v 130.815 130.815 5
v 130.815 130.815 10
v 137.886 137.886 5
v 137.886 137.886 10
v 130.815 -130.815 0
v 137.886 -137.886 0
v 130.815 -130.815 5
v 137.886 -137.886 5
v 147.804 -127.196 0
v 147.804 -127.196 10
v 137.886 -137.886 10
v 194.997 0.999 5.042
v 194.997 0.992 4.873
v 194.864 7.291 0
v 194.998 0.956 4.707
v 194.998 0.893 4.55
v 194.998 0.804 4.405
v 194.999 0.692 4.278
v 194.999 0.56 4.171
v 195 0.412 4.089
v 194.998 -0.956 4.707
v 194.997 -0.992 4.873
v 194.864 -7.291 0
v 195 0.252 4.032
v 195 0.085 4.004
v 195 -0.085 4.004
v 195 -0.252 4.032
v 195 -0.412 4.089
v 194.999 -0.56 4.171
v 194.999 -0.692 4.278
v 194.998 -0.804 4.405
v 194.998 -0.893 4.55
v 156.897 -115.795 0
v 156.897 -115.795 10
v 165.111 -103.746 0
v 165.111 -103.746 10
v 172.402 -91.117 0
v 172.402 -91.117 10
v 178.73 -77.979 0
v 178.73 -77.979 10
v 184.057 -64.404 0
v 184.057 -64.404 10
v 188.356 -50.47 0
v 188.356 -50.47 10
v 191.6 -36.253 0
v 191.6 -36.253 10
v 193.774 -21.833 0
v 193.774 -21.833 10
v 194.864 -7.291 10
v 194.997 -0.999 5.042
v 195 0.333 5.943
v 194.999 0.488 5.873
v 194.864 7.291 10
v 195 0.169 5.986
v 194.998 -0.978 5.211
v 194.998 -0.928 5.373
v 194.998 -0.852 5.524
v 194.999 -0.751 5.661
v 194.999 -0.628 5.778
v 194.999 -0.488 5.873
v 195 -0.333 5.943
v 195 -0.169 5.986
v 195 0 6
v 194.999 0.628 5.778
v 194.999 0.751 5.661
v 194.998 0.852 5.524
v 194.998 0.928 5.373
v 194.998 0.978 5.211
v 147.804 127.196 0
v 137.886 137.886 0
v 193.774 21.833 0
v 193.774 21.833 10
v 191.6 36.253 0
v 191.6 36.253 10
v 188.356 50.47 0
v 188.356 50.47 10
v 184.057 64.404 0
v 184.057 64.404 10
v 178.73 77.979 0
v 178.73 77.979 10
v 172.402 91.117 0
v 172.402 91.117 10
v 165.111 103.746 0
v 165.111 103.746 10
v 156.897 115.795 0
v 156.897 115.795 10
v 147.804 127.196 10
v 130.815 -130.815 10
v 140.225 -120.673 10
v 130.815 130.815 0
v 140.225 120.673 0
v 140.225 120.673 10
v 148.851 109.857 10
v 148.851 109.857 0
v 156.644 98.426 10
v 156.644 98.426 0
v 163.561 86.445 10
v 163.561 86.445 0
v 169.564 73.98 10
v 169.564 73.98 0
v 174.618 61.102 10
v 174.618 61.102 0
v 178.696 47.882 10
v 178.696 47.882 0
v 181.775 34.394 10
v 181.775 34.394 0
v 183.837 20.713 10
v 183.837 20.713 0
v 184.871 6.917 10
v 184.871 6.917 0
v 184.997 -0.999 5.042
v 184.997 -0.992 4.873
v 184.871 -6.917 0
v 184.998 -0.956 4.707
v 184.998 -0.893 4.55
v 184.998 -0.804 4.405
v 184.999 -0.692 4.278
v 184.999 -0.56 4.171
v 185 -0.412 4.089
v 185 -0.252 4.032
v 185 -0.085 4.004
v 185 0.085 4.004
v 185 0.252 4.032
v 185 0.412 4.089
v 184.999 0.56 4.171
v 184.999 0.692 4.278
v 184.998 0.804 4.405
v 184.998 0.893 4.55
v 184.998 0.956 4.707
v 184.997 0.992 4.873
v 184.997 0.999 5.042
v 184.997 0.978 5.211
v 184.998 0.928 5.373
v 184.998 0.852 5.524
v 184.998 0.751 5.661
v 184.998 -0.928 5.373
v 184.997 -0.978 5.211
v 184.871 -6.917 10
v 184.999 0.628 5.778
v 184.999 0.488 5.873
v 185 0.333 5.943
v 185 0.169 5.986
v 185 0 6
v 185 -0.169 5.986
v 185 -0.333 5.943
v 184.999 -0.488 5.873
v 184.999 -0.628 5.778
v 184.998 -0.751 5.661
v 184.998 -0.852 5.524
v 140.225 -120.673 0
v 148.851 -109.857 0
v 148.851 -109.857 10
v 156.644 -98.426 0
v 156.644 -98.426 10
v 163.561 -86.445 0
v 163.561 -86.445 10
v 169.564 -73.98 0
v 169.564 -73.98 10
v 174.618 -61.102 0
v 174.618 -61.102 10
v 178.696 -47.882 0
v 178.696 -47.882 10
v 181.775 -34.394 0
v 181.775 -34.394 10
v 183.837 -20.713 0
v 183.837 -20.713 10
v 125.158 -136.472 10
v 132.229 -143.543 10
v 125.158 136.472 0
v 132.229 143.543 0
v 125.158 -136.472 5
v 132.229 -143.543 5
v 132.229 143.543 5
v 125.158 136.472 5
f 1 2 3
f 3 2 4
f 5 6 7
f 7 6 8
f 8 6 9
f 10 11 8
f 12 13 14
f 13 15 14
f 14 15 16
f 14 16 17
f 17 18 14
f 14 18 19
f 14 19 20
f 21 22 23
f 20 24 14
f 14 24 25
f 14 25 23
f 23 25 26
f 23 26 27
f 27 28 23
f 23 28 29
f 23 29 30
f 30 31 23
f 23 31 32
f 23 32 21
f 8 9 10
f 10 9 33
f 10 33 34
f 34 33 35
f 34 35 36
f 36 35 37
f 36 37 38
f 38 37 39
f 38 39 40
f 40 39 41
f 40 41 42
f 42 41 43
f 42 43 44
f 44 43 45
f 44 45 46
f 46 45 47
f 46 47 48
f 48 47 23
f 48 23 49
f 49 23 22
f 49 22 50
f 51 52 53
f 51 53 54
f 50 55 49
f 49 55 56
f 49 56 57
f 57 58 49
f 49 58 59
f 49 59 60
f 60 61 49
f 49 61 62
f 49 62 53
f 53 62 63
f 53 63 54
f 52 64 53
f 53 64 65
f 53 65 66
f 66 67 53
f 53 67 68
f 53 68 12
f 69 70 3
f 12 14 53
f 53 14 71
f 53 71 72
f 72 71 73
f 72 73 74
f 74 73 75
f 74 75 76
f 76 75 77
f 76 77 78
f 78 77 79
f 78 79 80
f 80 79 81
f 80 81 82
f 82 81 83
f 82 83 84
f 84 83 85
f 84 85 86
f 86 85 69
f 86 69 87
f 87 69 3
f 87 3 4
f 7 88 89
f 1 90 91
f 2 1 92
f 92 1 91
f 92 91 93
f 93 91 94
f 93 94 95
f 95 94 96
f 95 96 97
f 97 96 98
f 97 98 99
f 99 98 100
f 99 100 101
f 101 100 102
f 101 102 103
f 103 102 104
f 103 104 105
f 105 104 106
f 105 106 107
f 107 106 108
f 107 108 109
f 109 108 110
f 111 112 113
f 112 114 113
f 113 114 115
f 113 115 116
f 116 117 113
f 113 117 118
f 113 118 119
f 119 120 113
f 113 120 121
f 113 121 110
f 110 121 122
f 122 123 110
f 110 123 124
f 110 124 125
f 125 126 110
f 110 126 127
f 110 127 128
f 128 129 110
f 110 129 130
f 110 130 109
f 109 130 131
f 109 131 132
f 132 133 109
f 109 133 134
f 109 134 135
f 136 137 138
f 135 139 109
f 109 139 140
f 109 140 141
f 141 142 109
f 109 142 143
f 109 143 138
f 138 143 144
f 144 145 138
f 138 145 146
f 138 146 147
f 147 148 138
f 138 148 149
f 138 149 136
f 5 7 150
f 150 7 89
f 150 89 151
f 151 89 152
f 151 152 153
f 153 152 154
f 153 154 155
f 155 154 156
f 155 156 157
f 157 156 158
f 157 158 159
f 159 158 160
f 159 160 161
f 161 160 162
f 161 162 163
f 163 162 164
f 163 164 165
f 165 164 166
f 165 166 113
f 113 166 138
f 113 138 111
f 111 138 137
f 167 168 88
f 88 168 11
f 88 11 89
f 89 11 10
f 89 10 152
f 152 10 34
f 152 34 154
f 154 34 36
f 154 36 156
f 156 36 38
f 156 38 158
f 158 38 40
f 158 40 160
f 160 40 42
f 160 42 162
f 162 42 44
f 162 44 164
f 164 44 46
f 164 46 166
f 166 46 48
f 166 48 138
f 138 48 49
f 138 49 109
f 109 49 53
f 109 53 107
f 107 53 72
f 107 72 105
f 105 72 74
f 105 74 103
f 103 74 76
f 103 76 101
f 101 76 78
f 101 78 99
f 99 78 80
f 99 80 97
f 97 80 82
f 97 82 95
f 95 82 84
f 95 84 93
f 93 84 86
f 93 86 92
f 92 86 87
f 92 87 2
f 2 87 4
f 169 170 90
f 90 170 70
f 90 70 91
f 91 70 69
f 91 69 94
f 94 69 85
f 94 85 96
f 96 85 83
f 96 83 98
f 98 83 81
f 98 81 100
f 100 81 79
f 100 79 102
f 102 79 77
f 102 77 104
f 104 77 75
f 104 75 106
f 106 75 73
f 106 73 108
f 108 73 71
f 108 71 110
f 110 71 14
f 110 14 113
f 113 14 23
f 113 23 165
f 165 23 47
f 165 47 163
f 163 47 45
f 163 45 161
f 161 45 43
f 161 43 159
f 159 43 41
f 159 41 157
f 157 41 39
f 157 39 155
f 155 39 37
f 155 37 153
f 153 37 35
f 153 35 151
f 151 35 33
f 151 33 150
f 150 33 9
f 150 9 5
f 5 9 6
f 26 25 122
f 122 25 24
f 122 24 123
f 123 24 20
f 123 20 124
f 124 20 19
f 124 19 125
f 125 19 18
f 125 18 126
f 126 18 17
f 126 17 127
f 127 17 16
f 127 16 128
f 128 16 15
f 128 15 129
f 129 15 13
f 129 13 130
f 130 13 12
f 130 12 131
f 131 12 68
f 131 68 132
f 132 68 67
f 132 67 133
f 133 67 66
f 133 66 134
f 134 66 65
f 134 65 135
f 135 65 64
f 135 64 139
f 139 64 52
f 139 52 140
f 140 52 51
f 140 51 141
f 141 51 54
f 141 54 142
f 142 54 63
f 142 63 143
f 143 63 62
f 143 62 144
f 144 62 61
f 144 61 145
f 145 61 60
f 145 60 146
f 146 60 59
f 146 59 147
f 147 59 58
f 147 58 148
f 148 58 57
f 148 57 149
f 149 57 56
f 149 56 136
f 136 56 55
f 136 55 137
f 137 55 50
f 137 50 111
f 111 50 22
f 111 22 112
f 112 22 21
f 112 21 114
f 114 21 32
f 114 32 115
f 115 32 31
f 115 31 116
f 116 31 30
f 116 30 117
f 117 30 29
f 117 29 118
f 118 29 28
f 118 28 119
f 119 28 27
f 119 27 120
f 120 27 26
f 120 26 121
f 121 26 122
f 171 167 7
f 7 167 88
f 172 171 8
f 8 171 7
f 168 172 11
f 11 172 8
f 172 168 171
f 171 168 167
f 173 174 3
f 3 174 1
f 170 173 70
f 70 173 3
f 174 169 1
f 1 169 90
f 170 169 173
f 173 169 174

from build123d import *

# Parameters (mm, degrees)
IZIM1_R                     = 195
IZIM1_R_2                   = 185
Y_KSEKLIK_EKSTR_ZYON1_DEPTH = 10
KES_EKSTR_ZYON1_DEPTH       = 250
KES_EKSTR_ZYON1_DEPTH_BACK  = 240
IZIM2_R                     = 1
KES_EKSTR_ZYON2_DEPTH       = 240
KES_EKSTR_ZYON2_DEPTH_BACK  = 240
IZIM3_R                     = 1
KES_EKSTR_ZYON3_DEPTH       = 139
IZIM6_W                     = 5
IZIM6_H                     = 10
Y_KSEKLIK_EKSTR_ZYON2_DEPTH = 8
IZIM7_W                     = 5
IZIM7_H                     = 10
Y_KSEKLIK_EKSTR_ZYON3_DEPTH = 8


with BuildPart() as part:
    # Çizim1 → Yükseklik-Ekstrüzyon1 (new body)
    with BuildSketch(Plane.XY):
        Circle(IZIM1_R)
        Circle(IZIM1_R_2, mode=Mode.SUBTRACT)
    extrude(amount=Y_KSEKLIK_EKSTR_ZYON1_DEPTH)

    # Çizim2 → Kes-Ekstrüzyon1 (cut, two sides: drawn at the far end of the back side and taken through both)
    with BuildSketch(Plane(origin=(0, 0, 0), x_dir=(0, 0, -1), z_dir=(1, 0, 0)).offset(-KES_EKSTR_ZYON1_DEPTH_BACK)):
        with Locations((-5, 0)):
            Circle(IZIM2_R)
    extrude(amount=KES_EKSTR_ZYON1_DEPTH + KES_EKSTR_ZYON1_DEPTH_BACK, mode=Mode.SUBTRACT)

    # Çizim3 → Kes-Ekstrüzyon2 (cut, two sides: drawn at the far end of the back side and taken through both)
    with BuildSketch(Plane(origin=(0, 0, 0), x_dir=(1, 0, 0), z_dir=(0, 1, 0)).offset(-KES_EKSTR_ZYON2_DEPTH_BACK)):
        with Locations((0, -5)):
            Circle(IZIM3_R)
    extrude(amount=KES_EKSTR_ZYON2_DEPTH + KES_EKSTR_ZYON2_DEPTH_BACK, mode=Mode.SUBTRACT)

    # Çizim4 → Kes-Ekstrüzyon3 (cut)
    with BuildSketch(Plane(origin=(0, 0, 0), x_dir=(-1, 0, 0), z_dir=(0, 0, -1))):
        with BuildLine():
            ThreePointArc((-137.885822331, -137.885822331), (195, 0), (-137.885822331, 137.885822331))
            Line((-137.885822331, 137.885822331), (-130.81475452, 130.81475452))
            ThreePointArc((-130.81475452, 130.81475452), (-185, 0), (-130.81475452, -130.81475452))
            Line((-130.81475452, -130.81475452), (-137.885822331, -137.885822331))
        make_face()
    extrude(amount=-KES_EKSTR_ZYON3_DEPTH, mode=Mode.SUBTRACT)

    # Çizim6 → Yükseklik-Ekstrüzyon2 (add)
    with BuildSketch(Plane(origin=(0, 0, 0), x_dir=(0, 0, 1), z_dir=(-0.7071067811865477, -0.7071067811865475, 0))):
        with Locations((7.5, -190)):
            Rectangle(IZIM6_W, IZIM6_H)
    extrude(amount=Y_KSEKLIK_EKSTR_ZYON2_DEPTH)

    # Çizim7 → Yükseklik-Ekstrüzyon3 (add)
    with BuildSketch(Plane(origin=(0, 0, 0), x_dir=(0, 0, 1), z_dir=(-0.7071067811865477, 0.7071067811865475, 0))):
        with Locations((2.5, 190)):
            Rectangle(IZIM7_W, IZIM7_H)
    extrude(amount=Y_KSEKLIK_EKSTR_ZYON3_DEPTH)


solid = part.part
